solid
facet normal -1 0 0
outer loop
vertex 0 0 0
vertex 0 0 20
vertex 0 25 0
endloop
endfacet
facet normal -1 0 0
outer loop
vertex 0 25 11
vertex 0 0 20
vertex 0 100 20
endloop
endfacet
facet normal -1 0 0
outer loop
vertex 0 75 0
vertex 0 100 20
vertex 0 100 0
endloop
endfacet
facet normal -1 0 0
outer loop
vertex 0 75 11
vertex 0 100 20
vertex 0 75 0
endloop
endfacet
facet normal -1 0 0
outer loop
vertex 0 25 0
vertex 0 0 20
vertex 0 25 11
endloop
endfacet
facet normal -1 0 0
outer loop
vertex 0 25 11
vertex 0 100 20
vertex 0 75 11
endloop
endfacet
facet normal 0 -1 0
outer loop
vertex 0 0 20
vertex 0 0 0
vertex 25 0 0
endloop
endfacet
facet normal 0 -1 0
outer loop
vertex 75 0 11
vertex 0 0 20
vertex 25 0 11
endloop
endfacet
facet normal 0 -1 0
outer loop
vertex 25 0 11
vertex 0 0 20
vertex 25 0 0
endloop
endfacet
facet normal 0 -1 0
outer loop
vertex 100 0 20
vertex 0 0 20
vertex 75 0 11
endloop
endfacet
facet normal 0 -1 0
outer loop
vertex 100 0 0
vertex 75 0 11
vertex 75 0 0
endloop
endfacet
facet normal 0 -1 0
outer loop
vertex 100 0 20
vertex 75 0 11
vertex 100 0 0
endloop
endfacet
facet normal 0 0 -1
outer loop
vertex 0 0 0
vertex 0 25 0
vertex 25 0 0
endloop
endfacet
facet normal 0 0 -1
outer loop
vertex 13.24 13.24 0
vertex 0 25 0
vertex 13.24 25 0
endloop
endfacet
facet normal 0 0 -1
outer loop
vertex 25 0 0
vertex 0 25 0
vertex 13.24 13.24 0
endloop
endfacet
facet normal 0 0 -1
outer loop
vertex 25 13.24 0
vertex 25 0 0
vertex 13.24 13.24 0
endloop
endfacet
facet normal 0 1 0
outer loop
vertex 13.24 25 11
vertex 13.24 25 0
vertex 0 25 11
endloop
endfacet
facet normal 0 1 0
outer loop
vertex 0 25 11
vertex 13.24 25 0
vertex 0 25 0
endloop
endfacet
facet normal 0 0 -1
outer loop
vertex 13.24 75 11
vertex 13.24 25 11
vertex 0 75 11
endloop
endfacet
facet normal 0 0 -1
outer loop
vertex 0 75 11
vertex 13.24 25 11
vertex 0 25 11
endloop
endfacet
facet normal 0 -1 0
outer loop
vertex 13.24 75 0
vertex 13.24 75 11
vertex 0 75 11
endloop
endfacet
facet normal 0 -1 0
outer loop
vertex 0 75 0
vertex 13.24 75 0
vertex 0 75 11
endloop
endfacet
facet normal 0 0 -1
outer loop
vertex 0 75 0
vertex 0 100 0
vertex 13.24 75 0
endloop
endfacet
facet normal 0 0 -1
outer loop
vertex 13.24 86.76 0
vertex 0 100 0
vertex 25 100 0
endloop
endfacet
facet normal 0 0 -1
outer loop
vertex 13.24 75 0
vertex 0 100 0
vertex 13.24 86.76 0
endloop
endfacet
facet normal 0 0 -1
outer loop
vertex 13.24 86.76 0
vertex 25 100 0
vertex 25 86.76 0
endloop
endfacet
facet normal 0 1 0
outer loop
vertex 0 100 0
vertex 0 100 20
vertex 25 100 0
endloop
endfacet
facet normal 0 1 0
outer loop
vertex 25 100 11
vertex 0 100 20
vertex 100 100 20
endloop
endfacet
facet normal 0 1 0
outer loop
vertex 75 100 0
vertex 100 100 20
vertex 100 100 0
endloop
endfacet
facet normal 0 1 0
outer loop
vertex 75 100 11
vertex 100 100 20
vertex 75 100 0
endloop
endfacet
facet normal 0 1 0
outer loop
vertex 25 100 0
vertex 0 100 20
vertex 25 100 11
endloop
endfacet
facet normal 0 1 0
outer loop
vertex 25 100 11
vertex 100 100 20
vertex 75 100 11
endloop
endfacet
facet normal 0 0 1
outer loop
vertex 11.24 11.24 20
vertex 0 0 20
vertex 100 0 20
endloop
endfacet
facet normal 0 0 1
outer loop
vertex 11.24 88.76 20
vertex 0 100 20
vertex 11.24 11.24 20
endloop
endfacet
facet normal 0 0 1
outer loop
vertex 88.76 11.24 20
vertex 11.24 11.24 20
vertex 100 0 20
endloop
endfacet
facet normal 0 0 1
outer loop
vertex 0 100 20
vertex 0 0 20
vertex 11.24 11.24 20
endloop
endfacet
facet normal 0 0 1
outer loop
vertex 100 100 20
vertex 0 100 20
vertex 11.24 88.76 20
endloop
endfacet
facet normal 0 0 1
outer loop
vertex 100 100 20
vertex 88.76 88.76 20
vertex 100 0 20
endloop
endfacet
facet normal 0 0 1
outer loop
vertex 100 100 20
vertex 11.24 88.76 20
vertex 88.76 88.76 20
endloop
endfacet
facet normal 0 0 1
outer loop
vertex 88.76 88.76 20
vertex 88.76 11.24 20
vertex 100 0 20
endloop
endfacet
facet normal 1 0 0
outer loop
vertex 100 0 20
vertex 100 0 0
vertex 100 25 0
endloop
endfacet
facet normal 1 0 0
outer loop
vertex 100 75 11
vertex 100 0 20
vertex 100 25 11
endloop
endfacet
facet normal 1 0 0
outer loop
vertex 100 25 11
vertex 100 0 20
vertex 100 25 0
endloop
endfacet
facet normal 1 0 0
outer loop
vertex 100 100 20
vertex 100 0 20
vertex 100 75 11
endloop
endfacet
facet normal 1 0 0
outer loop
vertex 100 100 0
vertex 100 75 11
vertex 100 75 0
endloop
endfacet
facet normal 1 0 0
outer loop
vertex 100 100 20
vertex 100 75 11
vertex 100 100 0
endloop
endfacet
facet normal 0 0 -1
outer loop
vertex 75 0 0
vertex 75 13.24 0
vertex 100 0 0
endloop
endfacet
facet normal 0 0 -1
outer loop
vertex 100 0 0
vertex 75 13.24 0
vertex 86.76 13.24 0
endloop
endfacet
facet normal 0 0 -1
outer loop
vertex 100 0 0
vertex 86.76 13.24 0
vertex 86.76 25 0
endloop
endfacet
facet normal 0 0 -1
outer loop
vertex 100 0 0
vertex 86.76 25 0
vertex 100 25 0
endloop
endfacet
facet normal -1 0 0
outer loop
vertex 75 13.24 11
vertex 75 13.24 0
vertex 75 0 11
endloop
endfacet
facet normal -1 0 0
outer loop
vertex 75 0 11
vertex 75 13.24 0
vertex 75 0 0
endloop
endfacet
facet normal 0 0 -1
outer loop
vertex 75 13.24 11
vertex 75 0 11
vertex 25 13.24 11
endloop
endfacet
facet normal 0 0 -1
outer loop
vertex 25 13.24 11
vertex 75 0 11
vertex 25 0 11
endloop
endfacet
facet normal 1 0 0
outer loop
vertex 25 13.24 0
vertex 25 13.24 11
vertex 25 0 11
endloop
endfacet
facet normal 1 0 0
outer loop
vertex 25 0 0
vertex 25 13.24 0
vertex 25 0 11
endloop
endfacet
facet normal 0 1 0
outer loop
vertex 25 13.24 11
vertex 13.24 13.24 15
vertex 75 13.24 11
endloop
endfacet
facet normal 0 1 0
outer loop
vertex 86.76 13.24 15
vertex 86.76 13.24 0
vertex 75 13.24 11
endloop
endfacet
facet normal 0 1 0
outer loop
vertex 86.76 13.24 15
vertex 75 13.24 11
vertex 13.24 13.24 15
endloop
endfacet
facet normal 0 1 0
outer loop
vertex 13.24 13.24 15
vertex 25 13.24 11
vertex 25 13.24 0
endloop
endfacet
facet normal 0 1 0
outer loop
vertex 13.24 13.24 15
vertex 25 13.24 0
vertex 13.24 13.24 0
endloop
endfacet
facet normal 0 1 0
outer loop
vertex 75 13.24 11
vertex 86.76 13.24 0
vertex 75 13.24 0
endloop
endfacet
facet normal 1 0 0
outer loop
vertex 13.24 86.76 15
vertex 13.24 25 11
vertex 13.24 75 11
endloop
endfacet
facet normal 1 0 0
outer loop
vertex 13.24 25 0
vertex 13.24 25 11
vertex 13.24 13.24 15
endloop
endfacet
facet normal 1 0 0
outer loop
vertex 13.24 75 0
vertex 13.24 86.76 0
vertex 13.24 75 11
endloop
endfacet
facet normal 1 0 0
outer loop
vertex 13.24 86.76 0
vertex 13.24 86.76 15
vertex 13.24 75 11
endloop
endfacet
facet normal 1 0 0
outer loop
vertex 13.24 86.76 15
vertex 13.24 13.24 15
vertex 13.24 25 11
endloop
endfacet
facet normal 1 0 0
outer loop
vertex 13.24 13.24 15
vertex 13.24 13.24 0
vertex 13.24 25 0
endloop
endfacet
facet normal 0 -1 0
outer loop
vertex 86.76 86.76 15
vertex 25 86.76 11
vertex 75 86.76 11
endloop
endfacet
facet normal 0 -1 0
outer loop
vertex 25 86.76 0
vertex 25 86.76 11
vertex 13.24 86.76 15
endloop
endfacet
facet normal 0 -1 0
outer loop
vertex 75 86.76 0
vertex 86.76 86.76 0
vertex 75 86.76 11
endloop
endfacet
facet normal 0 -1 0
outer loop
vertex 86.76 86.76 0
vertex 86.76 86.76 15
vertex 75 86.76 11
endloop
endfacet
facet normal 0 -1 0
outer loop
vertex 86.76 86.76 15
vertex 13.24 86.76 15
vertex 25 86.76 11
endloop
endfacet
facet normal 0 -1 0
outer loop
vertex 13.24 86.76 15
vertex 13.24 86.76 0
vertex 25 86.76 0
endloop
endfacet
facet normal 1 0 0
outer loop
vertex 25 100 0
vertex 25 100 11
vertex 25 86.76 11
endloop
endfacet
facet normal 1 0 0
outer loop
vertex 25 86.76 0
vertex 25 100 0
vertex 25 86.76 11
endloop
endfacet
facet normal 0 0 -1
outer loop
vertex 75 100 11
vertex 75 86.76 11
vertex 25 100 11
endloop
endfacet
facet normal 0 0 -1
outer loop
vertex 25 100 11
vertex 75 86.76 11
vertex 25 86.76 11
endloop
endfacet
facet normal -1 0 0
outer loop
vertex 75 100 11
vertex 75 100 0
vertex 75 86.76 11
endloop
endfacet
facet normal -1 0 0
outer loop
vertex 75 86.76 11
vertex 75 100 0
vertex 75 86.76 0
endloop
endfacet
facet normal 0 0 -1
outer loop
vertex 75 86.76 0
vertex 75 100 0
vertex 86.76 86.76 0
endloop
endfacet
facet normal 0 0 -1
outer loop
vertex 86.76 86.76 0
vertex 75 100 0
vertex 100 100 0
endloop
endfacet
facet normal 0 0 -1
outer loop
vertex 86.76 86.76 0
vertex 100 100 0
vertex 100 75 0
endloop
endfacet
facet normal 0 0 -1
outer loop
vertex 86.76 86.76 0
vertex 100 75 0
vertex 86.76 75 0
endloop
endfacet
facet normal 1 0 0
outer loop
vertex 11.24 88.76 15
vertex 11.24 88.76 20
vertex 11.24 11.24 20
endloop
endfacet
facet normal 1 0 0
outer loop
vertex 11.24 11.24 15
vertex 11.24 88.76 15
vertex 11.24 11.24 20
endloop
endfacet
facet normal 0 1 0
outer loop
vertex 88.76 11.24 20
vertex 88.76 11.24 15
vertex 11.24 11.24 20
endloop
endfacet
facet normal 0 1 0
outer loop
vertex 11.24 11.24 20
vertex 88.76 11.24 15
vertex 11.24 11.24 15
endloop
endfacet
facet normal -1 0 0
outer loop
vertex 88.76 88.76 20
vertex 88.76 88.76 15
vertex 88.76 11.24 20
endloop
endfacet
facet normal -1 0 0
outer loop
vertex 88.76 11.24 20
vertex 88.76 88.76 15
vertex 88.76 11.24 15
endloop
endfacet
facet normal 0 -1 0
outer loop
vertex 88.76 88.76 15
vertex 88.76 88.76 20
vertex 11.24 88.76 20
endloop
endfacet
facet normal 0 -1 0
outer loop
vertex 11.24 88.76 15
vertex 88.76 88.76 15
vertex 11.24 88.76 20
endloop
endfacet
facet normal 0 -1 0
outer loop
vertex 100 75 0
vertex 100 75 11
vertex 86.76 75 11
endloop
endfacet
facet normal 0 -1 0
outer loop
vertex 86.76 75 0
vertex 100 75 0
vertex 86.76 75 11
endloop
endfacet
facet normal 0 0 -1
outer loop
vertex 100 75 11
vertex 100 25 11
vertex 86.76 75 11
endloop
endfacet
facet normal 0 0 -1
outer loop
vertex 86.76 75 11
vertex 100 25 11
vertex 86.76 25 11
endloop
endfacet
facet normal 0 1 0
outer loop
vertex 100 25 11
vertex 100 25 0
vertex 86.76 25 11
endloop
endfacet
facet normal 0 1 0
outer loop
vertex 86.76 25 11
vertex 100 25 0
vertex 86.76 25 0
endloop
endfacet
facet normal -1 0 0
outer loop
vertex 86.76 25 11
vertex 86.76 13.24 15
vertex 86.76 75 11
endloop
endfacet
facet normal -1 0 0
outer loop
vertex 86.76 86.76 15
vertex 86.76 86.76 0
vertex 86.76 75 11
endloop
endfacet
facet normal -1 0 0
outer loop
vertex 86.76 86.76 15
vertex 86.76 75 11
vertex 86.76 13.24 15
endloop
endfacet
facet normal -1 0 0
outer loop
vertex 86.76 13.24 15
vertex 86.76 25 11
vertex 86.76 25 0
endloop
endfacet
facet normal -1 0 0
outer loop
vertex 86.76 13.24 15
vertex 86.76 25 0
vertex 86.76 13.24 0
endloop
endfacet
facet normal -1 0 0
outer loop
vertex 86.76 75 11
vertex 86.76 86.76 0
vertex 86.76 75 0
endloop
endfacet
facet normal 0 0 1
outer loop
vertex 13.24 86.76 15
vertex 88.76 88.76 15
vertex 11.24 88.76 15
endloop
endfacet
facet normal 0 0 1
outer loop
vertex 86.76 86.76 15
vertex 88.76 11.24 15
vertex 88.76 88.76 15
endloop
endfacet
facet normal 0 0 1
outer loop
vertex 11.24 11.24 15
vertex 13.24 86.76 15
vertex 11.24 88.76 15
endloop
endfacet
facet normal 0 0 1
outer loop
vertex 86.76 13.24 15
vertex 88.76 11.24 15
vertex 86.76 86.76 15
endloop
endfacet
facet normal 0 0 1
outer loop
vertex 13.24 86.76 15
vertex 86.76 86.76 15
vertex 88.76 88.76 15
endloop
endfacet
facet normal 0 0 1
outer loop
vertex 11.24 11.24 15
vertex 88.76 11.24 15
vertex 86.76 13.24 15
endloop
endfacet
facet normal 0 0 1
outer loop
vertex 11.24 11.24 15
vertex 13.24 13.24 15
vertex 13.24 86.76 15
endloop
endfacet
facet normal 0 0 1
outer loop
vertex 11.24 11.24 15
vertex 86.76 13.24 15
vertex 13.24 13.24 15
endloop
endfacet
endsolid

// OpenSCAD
dx = 100;
dy = 100;
dz = 20;

tx = 77.52;
ty = 77.52;
tz = 6;


/**
translate([0, 0, 0]) {
  translate([37.9, -11.2, 0]) {
    %import("_baseSolid.stl");
  }
}
**/


difference() {
  cube([dx, dy, dz]);

  translate([(dx-tx)/2, (dy-ty)/2, dz-tz+1]) {
    cube([tx, ty, tz]);
  }
  translate([(dx-tx+4)/2, (dy-ty+4)/2, -50]) {
    cube([tx-4, ty-4, 100]);
  }
  translate([-dx/4,dy/4,-1]) {
    cube([tx*2, dy/2, 12]);
  }
  translate([dx/4,-dy/4,-1]) {
    cube([dx/2, ty*2, 12]);
  }

}









 
